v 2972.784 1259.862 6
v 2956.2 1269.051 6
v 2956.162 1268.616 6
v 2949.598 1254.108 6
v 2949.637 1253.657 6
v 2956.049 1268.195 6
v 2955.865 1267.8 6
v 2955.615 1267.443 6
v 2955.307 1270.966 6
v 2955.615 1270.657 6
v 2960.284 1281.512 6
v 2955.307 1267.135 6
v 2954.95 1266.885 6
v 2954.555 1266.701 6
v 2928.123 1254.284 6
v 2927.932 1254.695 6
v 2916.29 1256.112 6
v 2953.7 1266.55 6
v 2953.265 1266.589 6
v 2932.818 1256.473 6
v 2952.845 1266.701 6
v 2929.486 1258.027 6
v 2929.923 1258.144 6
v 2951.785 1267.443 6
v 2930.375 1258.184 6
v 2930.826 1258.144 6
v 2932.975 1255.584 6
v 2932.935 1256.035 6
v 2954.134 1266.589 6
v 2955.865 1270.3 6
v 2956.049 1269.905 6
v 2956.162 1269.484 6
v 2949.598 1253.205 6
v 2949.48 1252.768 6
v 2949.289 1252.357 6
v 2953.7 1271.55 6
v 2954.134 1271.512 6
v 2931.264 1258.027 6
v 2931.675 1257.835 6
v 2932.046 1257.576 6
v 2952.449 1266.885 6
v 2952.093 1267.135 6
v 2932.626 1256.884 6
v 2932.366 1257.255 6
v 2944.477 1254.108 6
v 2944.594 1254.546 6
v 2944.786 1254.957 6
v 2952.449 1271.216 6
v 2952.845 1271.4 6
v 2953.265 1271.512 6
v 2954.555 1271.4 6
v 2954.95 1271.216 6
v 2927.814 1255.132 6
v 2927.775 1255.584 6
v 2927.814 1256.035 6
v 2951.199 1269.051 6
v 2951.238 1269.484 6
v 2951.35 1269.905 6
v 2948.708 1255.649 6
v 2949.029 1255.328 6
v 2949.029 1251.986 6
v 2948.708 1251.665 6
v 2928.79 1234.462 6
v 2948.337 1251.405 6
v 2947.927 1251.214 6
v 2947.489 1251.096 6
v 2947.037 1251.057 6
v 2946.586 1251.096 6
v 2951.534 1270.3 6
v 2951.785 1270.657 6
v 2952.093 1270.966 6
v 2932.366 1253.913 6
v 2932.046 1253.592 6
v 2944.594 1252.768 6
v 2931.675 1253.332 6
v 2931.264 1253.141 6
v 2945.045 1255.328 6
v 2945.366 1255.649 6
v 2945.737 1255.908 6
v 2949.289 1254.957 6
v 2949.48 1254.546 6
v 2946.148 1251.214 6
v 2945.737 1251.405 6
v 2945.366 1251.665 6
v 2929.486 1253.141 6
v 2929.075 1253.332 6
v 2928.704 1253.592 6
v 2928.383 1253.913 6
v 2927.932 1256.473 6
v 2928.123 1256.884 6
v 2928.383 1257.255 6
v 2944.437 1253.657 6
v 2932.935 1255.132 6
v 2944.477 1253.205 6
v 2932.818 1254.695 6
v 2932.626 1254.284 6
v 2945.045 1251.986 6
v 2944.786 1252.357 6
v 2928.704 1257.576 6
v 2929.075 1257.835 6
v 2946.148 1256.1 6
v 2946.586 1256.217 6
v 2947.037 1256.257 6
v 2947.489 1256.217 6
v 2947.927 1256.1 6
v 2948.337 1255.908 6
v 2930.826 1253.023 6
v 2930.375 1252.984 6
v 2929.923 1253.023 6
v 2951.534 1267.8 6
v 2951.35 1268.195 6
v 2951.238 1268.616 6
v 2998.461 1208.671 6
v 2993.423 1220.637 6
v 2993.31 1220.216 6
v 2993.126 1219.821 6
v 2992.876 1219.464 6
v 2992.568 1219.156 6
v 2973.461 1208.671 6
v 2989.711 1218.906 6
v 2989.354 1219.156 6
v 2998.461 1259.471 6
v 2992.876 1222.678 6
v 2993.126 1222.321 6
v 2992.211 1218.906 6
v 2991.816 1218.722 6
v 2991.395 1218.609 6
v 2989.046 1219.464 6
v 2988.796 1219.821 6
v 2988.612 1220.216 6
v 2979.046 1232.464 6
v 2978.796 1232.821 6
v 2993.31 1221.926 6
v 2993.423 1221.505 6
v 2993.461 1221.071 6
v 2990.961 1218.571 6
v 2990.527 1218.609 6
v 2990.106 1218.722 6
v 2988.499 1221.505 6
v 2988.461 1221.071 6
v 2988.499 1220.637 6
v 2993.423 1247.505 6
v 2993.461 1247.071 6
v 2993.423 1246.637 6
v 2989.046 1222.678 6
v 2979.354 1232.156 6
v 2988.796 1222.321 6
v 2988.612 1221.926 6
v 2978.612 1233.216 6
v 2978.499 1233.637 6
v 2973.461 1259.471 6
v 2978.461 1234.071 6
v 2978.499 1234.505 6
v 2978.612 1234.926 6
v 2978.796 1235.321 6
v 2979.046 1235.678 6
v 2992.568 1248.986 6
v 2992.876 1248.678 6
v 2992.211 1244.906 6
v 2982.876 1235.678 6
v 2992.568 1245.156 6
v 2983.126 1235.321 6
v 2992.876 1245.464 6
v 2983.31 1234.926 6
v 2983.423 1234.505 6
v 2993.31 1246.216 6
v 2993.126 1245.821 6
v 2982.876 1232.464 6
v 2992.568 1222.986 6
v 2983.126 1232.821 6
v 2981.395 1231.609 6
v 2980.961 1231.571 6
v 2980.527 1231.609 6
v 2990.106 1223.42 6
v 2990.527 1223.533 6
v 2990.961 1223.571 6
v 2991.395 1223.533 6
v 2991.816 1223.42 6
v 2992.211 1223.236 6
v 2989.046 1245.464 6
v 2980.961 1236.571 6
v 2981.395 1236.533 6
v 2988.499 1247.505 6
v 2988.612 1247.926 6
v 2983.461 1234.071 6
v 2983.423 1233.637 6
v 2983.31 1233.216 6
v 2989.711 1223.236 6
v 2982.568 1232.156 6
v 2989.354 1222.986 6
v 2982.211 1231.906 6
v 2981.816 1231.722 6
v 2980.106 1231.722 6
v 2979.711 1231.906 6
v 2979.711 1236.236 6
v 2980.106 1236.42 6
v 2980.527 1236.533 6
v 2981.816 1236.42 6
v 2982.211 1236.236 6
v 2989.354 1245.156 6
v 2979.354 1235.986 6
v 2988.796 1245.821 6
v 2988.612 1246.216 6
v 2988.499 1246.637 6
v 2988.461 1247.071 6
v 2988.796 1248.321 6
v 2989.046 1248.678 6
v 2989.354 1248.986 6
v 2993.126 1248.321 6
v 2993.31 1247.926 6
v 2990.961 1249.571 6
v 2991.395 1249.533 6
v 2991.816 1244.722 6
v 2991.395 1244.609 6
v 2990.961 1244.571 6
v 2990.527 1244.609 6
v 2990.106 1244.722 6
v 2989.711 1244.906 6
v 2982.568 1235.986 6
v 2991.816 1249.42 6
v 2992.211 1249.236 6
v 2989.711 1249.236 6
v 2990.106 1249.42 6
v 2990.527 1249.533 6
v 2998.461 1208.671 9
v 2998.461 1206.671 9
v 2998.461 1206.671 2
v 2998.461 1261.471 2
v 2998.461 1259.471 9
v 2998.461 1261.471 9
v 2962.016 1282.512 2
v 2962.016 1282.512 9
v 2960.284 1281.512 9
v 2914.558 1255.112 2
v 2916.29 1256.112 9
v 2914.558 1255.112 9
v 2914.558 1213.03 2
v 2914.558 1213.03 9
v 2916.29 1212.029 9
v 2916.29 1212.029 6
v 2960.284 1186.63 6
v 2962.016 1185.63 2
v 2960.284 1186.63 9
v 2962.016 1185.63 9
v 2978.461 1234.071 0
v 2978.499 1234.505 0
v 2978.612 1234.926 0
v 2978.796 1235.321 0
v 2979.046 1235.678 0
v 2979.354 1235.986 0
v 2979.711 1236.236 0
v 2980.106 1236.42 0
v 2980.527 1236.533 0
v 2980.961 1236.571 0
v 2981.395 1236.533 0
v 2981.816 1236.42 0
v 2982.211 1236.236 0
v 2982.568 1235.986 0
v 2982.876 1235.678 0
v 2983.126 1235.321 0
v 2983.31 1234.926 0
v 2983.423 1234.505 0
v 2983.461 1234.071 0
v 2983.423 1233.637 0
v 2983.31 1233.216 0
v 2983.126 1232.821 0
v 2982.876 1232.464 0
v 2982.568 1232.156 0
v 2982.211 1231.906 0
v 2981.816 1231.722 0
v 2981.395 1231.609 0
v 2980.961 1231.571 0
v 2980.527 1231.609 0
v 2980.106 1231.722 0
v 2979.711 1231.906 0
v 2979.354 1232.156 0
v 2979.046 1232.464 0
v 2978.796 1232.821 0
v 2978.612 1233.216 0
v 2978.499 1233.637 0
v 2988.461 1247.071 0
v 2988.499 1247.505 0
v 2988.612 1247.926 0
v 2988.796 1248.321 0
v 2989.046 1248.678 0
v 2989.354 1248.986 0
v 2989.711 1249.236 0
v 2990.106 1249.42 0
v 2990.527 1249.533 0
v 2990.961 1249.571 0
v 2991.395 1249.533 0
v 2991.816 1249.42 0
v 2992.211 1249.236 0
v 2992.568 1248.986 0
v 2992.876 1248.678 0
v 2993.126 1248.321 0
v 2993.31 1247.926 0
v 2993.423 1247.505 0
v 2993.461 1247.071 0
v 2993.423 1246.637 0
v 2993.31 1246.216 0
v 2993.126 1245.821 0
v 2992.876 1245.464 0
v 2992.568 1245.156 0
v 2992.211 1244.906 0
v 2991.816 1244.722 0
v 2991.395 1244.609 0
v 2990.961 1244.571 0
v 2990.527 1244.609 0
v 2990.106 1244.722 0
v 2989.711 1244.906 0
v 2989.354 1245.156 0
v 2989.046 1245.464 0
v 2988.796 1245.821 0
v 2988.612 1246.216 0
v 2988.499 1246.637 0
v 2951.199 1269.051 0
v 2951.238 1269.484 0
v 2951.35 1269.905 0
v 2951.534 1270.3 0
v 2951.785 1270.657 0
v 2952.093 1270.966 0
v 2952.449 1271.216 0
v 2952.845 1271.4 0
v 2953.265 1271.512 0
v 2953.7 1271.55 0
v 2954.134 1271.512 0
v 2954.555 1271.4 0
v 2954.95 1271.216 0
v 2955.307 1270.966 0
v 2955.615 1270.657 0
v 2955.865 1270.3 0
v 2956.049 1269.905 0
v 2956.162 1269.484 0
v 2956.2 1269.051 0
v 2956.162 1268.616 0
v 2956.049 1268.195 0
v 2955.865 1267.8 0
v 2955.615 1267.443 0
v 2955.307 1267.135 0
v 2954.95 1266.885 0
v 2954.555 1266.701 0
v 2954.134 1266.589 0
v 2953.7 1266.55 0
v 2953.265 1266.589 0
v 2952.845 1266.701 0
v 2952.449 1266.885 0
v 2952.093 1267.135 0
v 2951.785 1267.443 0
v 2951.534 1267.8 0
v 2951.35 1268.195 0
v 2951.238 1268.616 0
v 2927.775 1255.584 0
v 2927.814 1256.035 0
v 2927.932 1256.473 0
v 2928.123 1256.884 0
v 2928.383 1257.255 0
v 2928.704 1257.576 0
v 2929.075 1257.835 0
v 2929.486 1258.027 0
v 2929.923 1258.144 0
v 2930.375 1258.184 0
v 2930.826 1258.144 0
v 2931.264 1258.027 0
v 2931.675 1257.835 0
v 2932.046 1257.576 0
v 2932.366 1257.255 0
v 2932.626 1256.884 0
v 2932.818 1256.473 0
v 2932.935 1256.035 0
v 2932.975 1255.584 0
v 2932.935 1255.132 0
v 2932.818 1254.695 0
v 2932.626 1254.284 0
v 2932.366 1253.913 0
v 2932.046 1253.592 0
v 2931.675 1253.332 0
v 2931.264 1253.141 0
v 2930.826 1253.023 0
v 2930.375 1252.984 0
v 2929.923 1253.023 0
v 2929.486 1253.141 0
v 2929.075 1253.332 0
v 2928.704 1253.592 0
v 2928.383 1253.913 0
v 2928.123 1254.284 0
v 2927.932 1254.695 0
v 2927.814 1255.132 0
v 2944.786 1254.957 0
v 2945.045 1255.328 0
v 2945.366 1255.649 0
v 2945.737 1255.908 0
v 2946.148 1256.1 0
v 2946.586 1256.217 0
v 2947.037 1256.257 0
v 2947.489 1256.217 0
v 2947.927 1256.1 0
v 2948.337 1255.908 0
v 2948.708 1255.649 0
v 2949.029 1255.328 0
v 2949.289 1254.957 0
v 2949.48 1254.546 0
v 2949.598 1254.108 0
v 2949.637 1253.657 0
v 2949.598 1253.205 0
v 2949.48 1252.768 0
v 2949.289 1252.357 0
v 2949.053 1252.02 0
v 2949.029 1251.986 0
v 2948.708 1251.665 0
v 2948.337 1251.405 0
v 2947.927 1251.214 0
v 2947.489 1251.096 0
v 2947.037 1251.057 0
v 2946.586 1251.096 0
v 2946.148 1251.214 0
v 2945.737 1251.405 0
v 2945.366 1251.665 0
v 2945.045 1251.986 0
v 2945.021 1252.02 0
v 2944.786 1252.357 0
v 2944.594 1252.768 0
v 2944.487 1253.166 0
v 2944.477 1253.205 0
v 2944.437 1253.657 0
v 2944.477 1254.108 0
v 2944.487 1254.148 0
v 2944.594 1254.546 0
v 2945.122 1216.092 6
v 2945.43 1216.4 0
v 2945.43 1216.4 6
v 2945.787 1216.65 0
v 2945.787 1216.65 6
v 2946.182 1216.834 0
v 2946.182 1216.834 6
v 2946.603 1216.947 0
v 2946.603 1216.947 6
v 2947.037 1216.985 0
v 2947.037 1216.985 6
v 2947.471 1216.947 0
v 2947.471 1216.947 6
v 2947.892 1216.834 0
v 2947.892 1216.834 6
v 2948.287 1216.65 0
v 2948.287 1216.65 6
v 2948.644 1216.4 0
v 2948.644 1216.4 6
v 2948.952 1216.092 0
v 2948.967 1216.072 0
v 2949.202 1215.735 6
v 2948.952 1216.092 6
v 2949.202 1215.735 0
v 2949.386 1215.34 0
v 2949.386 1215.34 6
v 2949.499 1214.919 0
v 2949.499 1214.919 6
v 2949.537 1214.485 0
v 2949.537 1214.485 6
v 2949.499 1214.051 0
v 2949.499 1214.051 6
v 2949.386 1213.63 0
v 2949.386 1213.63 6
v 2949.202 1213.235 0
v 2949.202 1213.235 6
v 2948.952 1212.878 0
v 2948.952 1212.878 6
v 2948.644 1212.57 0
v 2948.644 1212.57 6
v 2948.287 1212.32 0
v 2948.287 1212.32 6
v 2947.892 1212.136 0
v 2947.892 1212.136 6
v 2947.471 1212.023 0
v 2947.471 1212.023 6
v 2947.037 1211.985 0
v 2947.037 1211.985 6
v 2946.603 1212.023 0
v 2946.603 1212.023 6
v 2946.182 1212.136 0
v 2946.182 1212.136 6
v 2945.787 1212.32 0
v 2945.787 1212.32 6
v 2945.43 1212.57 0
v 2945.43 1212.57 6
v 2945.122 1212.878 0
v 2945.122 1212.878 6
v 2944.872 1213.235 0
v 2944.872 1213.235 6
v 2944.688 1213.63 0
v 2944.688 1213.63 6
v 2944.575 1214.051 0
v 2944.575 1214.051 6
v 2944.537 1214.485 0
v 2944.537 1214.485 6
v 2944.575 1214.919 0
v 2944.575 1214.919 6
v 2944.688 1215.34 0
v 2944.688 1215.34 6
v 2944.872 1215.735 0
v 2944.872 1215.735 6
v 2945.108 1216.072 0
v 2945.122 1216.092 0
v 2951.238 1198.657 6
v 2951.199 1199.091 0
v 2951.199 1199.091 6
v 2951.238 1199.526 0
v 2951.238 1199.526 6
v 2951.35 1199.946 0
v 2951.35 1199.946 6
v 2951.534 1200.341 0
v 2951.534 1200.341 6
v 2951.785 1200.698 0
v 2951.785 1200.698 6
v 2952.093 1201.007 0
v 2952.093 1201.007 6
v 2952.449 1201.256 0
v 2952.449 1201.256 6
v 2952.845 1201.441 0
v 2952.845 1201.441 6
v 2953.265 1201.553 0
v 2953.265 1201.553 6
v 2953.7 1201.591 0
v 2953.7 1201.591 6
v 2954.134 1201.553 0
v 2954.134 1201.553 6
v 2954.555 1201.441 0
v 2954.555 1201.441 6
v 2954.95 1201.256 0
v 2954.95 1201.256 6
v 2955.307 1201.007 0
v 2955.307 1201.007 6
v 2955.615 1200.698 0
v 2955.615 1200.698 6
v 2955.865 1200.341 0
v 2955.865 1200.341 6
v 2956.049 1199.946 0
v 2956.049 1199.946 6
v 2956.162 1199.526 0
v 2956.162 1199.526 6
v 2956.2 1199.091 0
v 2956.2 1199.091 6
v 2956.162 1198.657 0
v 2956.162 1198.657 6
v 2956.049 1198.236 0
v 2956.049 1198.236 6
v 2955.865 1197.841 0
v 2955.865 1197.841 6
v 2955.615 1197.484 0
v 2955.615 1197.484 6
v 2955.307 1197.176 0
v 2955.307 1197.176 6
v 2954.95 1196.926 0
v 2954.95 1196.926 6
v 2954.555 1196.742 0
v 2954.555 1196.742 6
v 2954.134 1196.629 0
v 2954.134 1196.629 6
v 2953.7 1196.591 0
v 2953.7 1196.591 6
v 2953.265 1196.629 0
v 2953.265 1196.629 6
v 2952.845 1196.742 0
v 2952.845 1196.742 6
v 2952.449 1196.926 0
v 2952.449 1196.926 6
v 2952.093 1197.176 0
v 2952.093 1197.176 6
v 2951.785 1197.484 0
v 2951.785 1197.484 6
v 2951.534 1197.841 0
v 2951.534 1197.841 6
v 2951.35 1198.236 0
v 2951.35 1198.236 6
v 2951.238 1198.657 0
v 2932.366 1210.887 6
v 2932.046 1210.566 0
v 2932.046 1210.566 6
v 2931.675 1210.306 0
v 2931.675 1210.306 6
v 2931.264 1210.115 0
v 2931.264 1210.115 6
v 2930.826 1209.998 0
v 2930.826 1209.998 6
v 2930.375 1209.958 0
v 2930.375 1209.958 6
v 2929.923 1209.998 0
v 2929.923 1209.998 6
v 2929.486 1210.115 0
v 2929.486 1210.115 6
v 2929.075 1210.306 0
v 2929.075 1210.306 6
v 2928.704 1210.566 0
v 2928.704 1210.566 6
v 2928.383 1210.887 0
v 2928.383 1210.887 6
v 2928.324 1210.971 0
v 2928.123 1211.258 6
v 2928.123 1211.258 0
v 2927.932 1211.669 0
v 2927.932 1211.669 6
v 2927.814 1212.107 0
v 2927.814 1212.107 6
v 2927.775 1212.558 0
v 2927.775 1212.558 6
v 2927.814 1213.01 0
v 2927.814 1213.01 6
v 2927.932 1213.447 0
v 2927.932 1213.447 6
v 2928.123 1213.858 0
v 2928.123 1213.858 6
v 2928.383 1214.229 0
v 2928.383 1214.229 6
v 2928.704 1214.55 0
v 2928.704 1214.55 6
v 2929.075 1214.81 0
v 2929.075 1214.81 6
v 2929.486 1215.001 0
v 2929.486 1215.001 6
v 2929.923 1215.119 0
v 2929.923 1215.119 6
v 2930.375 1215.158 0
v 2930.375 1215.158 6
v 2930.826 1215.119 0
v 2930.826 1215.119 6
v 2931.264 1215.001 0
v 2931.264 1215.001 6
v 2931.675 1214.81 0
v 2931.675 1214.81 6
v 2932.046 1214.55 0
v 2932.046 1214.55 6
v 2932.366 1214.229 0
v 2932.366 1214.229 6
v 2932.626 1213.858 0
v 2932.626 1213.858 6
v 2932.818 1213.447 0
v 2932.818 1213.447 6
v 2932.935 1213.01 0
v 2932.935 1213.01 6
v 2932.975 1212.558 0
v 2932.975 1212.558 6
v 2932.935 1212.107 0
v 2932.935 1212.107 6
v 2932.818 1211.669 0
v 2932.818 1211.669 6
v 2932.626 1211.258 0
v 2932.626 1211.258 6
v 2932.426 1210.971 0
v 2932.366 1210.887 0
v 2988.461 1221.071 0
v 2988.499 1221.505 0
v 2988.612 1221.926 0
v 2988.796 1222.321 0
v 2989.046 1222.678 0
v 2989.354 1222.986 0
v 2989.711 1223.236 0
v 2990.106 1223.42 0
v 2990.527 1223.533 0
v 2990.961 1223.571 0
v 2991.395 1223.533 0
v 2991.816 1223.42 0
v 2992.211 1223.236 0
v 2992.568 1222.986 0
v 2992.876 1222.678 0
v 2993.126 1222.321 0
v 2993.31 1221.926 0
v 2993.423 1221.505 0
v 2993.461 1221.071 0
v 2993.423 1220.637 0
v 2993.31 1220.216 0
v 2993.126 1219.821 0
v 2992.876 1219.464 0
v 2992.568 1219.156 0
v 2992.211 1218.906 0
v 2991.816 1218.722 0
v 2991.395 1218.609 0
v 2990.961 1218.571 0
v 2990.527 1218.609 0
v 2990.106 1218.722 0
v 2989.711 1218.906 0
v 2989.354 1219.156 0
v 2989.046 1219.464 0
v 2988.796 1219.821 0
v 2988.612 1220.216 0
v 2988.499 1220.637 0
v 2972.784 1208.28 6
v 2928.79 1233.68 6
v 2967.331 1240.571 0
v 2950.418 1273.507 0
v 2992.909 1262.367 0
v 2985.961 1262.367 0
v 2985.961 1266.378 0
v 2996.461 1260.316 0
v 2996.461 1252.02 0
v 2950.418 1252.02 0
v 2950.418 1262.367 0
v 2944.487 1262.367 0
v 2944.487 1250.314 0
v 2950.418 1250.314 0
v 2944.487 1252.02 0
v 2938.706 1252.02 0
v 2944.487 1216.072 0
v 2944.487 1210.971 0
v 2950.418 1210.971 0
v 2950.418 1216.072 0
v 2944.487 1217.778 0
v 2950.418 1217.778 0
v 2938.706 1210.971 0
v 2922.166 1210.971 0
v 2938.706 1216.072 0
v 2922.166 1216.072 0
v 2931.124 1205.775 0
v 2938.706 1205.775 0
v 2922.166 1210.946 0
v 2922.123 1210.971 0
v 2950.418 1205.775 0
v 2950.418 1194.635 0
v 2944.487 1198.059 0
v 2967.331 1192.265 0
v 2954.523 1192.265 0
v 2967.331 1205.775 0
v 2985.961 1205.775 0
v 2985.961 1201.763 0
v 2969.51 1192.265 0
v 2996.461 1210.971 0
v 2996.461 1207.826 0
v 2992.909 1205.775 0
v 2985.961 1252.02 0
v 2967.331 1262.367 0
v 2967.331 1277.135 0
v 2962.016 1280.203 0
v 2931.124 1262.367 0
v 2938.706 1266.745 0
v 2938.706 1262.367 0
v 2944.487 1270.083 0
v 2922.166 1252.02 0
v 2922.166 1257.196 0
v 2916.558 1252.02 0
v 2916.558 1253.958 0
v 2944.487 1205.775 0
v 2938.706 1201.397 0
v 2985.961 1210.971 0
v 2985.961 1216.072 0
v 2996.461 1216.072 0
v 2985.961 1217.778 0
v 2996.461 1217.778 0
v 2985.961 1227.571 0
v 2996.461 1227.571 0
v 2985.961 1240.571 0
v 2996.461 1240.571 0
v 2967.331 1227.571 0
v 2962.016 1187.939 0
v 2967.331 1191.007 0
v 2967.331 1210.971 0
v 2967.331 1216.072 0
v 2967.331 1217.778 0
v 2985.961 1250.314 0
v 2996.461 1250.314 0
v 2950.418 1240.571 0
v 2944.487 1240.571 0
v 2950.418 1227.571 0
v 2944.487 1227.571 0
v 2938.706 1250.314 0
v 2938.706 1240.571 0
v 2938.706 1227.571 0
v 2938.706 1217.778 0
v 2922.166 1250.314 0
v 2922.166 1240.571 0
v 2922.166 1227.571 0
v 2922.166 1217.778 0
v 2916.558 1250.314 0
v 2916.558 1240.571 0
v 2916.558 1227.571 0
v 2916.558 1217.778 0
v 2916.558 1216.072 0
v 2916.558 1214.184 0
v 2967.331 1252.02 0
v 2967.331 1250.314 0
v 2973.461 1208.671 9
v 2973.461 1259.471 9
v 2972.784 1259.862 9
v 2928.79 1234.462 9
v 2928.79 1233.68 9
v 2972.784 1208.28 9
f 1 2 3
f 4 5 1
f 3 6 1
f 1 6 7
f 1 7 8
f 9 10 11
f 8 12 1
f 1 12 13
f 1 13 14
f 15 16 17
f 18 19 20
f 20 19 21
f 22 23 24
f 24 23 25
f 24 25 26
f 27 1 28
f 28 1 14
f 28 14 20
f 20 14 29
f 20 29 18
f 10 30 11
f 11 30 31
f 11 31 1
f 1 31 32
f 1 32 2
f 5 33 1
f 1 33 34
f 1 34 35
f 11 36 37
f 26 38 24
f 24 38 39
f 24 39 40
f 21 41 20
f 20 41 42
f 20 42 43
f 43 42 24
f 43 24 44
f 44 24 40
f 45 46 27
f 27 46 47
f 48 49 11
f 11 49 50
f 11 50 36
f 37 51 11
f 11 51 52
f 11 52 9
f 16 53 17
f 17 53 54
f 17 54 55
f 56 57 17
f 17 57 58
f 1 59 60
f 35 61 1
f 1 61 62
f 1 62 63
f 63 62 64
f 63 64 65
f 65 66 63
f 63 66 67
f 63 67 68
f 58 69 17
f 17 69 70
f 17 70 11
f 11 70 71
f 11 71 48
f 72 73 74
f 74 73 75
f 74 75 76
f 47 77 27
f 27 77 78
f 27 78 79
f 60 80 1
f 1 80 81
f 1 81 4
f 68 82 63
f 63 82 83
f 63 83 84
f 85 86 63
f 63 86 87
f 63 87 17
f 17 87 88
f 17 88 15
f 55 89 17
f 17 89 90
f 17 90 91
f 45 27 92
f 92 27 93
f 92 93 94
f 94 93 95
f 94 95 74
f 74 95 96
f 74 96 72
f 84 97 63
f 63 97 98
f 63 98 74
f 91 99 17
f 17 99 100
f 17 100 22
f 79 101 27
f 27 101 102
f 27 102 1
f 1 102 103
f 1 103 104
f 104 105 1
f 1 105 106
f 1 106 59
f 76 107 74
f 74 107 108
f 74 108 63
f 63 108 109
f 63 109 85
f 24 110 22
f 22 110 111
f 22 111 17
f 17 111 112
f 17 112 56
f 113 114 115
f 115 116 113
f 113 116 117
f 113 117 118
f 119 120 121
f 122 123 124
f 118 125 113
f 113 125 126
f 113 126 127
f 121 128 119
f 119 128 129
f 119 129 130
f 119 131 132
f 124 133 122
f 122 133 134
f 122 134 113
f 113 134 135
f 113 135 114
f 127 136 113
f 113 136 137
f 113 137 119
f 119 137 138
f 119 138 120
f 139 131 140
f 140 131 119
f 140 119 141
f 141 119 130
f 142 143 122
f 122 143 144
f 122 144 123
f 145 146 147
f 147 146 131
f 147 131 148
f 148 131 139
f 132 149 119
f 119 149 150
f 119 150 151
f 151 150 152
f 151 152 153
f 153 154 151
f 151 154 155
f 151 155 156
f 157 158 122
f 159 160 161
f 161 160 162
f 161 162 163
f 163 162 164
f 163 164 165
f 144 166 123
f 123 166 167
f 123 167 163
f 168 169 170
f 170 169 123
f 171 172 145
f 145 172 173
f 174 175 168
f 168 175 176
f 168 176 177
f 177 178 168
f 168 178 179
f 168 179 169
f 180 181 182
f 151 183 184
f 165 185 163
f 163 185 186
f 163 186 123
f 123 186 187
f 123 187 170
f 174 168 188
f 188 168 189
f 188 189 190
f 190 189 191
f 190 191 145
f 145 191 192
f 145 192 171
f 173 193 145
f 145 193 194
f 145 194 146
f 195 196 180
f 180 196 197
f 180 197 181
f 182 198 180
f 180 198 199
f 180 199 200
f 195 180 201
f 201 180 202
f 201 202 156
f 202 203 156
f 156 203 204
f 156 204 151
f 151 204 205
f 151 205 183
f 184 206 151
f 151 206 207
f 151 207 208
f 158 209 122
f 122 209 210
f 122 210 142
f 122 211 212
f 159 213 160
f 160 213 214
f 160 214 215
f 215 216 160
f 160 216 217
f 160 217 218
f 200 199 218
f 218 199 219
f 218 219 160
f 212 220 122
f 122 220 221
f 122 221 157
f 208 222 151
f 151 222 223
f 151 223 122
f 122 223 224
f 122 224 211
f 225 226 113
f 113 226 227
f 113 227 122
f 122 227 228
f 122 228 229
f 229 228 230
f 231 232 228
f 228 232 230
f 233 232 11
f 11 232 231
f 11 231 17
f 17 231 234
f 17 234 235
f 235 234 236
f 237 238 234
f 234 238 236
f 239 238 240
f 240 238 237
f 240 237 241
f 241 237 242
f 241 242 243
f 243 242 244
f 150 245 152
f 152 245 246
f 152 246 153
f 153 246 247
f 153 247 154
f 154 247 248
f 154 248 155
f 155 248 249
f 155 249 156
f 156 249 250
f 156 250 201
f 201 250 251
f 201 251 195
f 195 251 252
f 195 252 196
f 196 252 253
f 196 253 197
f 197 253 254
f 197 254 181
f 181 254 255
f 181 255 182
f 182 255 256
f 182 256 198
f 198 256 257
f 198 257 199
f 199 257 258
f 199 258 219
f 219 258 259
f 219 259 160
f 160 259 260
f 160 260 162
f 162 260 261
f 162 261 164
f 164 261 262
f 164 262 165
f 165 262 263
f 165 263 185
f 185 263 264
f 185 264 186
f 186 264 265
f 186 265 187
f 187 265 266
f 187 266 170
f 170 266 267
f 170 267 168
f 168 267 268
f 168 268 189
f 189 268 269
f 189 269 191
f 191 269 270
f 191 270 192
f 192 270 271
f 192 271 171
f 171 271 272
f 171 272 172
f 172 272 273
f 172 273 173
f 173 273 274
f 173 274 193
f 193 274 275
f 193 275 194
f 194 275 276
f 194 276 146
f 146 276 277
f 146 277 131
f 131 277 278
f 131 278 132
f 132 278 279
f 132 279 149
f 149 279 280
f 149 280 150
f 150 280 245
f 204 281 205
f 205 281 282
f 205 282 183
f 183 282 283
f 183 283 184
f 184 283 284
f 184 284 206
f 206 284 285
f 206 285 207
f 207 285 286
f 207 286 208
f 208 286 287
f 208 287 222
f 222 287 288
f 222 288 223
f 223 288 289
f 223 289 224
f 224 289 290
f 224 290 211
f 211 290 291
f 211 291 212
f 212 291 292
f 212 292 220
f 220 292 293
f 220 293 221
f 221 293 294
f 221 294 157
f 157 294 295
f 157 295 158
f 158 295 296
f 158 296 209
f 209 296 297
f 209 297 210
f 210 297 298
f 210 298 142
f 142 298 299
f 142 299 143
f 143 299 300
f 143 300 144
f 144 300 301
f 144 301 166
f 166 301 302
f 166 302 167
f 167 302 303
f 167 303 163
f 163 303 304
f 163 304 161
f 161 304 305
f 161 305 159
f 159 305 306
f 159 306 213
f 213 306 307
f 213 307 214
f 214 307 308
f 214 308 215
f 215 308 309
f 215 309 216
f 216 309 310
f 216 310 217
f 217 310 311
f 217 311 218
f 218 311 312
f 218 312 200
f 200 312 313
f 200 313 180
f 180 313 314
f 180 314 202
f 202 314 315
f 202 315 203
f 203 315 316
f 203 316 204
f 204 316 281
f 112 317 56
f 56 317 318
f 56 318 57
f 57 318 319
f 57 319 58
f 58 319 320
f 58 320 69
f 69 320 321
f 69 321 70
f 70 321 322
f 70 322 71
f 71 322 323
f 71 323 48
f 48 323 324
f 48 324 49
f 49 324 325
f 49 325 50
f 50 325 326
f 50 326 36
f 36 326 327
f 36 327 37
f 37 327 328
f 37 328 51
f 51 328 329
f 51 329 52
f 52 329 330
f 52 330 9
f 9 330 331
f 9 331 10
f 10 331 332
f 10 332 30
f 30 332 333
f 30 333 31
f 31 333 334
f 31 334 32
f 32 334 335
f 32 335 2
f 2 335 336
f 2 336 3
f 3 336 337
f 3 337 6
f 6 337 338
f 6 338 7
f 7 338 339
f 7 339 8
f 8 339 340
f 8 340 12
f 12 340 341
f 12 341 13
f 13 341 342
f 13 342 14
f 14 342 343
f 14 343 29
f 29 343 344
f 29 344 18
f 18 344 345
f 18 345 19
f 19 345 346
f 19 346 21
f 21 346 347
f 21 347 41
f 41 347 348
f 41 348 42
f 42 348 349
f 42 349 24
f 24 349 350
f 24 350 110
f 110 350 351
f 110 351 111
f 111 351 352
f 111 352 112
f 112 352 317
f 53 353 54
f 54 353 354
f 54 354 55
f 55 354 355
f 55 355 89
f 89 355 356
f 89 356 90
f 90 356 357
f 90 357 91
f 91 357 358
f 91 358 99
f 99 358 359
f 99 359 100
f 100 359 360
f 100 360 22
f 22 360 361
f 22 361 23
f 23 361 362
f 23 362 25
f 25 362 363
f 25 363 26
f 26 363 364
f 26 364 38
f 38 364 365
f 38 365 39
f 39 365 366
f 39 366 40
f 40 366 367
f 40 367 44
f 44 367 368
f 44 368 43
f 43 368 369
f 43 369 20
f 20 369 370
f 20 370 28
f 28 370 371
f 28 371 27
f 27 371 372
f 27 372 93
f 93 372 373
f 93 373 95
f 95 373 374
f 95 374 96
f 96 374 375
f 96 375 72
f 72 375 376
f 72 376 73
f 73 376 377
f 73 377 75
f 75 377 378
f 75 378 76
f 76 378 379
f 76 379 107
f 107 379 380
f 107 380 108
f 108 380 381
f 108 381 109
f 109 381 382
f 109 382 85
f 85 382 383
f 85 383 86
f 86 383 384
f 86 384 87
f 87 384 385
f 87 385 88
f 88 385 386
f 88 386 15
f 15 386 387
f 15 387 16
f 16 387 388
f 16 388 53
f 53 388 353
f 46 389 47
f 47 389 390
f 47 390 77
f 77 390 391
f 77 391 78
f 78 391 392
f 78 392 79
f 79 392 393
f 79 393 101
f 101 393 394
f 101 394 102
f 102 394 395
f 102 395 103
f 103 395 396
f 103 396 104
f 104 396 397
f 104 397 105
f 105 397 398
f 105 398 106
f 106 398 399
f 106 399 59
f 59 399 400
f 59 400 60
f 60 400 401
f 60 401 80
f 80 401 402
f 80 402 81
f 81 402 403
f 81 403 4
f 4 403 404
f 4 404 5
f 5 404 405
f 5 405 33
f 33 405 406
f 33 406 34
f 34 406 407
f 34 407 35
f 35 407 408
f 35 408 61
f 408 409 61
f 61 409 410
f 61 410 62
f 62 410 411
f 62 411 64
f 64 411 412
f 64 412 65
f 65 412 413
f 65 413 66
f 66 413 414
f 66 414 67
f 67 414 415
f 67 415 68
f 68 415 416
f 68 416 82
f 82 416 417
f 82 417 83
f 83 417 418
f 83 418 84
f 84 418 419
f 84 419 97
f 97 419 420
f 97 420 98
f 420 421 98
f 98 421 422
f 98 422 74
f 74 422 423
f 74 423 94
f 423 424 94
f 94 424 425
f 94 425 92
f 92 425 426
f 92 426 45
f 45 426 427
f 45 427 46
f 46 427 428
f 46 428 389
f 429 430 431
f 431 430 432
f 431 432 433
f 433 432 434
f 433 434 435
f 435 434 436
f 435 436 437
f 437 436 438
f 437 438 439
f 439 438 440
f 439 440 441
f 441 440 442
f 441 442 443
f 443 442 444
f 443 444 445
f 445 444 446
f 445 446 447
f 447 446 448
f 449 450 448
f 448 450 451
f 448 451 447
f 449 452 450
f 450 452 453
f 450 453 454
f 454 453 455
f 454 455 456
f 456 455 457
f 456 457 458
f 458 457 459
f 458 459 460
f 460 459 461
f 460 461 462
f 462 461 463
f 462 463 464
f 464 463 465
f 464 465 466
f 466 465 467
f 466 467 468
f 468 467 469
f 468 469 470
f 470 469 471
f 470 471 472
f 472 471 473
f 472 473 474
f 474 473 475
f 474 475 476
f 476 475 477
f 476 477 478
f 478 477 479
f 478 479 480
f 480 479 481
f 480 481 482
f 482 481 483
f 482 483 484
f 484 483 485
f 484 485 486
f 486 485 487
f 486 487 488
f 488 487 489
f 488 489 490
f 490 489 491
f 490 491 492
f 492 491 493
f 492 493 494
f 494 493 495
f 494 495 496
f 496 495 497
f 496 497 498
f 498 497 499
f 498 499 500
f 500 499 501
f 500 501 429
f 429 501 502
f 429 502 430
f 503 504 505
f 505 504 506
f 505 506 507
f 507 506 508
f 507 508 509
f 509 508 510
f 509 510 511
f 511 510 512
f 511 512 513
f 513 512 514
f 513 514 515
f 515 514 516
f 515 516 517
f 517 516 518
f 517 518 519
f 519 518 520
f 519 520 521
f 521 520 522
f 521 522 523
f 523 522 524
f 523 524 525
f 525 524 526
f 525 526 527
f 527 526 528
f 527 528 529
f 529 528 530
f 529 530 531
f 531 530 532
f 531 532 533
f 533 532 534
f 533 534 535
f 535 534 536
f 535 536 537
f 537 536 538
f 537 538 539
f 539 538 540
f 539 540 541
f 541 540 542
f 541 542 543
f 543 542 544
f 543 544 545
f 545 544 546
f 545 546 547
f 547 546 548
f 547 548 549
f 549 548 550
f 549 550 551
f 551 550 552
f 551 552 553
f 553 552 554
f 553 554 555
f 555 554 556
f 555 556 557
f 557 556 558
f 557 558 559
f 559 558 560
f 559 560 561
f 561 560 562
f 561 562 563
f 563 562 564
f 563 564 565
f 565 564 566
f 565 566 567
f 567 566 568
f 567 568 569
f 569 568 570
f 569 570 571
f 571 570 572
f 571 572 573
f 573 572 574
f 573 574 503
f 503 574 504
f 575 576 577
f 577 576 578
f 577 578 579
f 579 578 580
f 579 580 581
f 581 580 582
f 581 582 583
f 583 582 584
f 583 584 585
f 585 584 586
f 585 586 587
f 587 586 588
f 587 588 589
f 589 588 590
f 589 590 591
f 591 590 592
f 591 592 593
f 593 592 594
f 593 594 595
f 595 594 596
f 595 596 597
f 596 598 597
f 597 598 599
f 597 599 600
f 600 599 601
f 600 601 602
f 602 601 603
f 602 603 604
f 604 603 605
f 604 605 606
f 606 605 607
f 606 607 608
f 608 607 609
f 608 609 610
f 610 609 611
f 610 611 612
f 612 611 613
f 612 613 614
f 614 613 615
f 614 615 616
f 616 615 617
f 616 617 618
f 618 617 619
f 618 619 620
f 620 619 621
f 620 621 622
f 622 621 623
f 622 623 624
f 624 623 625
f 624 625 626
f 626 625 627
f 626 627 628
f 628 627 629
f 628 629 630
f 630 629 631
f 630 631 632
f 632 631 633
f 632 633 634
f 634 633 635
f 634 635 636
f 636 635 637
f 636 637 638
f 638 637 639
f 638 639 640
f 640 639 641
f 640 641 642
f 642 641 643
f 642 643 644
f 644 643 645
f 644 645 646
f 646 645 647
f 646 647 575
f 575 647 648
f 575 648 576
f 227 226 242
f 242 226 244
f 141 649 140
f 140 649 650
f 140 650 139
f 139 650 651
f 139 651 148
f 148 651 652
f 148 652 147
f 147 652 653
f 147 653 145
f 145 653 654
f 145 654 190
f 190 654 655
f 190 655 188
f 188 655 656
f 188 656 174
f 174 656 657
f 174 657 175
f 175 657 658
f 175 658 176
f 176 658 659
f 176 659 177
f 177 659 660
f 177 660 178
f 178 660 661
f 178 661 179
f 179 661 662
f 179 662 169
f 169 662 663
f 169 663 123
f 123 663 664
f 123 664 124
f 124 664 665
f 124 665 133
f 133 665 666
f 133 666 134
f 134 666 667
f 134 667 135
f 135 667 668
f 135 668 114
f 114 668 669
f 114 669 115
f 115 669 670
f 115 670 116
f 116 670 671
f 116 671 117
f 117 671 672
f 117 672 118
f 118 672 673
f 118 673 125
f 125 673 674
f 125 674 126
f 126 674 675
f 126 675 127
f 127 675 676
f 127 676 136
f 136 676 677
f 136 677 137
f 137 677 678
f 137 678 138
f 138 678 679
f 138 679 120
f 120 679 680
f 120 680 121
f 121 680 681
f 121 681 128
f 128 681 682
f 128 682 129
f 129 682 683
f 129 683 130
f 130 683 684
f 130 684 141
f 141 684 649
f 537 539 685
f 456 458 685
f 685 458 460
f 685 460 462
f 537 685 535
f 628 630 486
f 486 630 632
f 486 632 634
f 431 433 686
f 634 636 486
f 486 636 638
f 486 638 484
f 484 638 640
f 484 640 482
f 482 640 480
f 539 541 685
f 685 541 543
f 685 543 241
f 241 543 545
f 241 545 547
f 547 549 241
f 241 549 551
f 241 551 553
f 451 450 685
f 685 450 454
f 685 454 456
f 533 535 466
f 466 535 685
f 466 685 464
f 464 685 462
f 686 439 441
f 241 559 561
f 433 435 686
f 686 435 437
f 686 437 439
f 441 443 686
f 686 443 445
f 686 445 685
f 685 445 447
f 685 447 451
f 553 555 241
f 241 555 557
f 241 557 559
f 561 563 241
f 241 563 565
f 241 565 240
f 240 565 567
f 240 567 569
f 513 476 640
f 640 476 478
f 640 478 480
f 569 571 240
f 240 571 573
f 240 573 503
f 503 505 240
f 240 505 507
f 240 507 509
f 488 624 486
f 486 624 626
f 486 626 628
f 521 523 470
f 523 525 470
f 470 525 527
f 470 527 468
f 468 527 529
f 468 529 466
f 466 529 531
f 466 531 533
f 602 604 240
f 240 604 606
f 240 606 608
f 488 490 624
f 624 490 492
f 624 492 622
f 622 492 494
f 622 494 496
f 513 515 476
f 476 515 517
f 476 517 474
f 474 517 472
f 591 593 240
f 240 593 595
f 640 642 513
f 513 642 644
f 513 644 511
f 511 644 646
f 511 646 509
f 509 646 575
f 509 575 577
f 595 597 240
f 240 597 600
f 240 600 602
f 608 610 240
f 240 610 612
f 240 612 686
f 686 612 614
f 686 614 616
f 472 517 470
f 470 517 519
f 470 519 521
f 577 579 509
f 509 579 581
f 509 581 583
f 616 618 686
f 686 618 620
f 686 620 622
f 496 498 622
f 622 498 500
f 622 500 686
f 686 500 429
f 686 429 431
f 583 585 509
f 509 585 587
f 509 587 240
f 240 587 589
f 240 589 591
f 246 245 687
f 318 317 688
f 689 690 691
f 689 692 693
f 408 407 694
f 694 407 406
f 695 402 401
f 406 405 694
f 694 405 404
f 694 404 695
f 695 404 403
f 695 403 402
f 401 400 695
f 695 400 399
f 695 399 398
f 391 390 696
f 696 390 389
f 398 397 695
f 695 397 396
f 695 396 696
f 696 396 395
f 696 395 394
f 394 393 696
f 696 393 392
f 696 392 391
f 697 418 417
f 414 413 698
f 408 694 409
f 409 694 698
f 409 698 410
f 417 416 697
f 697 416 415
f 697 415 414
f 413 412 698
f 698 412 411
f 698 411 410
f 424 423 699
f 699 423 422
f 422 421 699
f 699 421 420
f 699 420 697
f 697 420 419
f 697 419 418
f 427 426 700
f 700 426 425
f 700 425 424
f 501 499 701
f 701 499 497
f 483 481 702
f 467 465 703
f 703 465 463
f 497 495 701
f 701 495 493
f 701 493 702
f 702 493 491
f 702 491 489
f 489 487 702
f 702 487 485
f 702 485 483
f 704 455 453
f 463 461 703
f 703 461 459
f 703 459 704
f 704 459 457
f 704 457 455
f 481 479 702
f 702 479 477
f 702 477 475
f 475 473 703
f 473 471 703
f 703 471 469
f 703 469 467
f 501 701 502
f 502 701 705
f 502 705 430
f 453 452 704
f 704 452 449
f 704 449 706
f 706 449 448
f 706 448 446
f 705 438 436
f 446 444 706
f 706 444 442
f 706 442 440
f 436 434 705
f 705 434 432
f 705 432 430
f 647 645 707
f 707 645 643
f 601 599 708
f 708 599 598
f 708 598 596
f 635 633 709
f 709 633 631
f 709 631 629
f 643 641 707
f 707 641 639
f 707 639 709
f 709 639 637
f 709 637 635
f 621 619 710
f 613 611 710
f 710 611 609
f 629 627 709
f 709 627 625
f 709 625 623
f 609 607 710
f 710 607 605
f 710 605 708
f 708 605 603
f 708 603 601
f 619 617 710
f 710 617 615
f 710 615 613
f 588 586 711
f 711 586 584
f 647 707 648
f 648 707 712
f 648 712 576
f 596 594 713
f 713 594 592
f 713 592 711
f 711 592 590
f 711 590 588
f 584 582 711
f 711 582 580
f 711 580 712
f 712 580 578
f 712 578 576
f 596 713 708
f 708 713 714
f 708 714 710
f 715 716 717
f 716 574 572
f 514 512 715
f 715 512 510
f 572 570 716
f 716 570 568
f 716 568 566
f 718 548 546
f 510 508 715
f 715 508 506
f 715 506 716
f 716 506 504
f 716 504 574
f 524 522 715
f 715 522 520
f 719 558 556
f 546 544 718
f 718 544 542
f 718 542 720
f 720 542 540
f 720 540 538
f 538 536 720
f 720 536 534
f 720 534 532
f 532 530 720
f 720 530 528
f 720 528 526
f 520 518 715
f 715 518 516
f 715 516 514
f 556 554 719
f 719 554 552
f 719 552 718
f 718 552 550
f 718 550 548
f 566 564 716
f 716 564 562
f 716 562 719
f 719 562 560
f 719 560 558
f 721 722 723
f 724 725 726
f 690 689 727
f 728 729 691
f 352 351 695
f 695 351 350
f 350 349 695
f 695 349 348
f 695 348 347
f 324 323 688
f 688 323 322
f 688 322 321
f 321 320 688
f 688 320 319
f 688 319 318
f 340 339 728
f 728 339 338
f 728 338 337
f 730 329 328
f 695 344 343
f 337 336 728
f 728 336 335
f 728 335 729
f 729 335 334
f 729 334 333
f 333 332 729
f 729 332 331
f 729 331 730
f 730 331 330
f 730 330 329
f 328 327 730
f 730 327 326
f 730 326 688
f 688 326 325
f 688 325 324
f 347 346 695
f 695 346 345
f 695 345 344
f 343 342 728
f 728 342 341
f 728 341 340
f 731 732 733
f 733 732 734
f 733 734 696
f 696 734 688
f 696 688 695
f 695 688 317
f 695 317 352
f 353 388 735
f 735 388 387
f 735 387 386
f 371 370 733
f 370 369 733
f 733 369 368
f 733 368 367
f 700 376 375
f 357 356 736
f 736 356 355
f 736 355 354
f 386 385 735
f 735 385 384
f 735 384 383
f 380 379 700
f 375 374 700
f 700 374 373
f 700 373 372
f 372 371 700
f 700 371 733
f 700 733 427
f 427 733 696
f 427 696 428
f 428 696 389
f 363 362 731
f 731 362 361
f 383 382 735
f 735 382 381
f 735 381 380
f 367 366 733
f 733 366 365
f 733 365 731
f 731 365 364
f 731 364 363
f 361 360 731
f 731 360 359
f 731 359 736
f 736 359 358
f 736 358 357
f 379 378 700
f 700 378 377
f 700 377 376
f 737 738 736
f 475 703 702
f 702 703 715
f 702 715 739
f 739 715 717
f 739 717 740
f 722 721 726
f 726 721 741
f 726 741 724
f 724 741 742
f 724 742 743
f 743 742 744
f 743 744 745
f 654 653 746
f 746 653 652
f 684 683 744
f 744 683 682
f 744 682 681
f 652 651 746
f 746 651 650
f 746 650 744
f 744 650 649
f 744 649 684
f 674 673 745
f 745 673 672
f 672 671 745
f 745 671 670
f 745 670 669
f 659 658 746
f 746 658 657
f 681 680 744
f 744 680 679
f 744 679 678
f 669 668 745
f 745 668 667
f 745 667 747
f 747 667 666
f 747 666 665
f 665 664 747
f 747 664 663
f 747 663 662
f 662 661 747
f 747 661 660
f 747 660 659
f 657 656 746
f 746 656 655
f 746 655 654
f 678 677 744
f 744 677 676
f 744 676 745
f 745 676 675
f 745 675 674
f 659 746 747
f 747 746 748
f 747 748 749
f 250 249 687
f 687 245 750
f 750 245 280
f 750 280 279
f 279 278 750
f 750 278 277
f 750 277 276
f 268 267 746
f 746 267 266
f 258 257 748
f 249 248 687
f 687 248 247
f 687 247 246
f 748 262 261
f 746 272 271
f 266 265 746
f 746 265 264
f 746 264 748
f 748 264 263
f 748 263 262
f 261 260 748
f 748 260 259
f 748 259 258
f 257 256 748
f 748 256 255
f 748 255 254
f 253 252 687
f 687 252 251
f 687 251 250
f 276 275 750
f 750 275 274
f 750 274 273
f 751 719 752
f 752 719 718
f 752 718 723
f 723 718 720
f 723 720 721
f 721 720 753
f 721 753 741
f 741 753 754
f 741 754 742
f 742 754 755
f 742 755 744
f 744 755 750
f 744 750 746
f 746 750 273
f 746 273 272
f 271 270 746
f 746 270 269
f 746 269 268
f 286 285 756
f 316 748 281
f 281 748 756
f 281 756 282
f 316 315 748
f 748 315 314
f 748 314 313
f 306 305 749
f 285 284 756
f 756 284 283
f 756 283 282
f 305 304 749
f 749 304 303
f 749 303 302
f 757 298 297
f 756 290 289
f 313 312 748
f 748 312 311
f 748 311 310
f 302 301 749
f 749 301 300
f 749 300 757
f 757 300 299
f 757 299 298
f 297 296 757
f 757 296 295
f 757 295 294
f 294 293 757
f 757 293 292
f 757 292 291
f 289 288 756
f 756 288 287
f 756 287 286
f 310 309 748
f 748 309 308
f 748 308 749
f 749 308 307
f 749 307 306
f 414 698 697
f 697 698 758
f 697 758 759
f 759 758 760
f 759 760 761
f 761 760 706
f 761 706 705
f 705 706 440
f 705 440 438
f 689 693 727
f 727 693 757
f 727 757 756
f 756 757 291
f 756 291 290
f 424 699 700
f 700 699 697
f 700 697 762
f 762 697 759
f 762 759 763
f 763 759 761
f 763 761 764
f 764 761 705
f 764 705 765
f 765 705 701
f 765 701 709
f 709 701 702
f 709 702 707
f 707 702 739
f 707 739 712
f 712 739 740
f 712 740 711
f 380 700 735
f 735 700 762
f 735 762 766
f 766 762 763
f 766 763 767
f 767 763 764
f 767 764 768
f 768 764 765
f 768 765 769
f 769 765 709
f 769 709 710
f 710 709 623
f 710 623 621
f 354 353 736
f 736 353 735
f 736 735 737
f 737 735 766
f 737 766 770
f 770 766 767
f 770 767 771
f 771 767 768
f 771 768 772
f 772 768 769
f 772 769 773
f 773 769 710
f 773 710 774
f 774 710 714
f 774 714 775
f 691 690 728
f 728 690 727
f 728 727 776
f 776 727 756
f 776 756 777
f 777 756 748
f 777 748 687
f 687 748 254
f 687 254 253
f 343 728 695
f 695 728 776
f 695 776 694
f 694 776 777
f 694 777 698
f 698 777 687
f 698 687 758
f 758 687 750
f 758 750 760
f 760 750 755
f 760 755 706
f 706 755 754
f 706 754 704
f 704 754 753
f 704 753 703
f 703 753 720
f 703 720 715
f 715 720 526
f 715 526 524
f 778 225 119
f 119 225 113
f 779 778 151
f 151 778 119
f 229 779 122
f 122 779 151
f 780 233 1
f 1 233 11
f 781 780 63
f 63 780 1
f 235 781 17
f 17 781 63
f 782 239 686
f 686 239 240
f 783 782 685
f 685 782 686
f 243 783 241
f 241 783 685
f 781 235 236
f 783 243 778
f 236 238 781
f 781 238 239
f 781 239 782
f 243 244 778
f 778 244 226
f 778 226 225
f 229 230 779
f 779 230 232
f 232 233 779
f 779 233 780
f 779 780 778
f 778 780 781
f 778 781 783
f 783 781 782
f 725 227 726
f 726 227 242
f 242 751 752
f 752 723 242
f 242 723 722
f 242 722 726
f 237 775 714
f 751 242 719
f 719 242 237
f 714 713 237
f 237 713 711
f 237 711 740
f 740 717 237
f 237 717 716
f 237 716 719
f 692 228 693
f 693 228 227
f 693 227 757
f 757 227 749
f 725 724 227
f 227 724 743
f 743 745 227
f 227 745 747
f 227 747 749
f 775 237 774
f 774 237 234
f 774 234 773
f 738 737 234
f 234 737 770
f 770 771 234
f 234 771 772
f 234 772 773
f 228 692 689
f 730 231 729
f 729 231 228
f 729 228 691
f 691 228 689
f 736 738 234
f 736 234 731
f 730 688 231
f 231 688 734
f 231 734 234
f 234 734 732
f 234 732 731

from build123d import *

# Parameters (mm, degrees)
SKETCH1_R           = 2.5
SKETCH1_R_2         = 2.6
BOSS_EXTRUDE1_DEPTH = 6
BOSS_EXTRUDE2_DEPTH = 3
CHAMFER1_SIZE       = 2


with BuildPart() as part:
    # Sketch1 → Boss-Extrude1 (new body)
    with BuildSketch(Plane.XY):
        Polygon((2998.461039771, 1261.470901479), (2998.461039771, 1206.670901479), (2962.016271034, 1185.629504438), (2914.558078907, 1213.029504438), (2914.558078907, 1255.11229852), (2962.016271034, 1282.51229852), align=None)
        with Locations((2990.961039771, 1221.070901479)):
            Circle(SKETCH1_R, mode=Mode.SUBTRACT)
        with Locations((2980.961039771, 1234.070901479)):
            Circle(SKETCH1_R, mode=Mode.SUBTRACT)
        with Locations((2990.961039771, 1247.070901479)):
            Circle(SKETCH1_R, mode=Mode.SUBTRACT)
        with Locations((2953.699650408, 1269.050441325)):
            Circle(SKETCH1_R, mode=Mode.SUBTRACT)
        with Locations((2930.374699533, 1255.583774658)):
            Circle(SKETCH1_R_2, mode=Mode.SUBTRACT)
        with Locations((2947.03717497, 1214.484949004)):
            Circle(SKETCH1_R, mode=Mode.SUBTRACT)
        with Locations((2953.699650408, 1199.091361633)):
            Circle(SKETCH1_R, mode=Mode.SUBTRACT)
        with Locations((2930.374699533, 1212.5580283)):
            Circle(SKETCH1_R_2, mode=Mode.SUBTRACT)
        with Locations((2947.03717497, 1253.656853954)):
            Circle(SKETCH1_R_2, mode=Mode.SUBTRACT)
    extrude(amount=BOSS_EXTRUDE1_DEPTH)

    # Sketch2 → Boss-Extrude2 (add)
    with BuildSketch(Plane.XY.offset(6)):
        Polygon((2916.290129714, 1212.029504438), (2928.790129714, 1233.680139532), (2972.784220226, 1208.280139532), (2960.284220226, 1186.629504438), (2962.016271034, 1185.629504438), (2998.461039771, 1206.670901479), (2998.461039771, 1208.670901479), (2973.461039771, 1208.670901479), (2973.461039771, 1259.470901479), (2998.461039771, 1259.470901479), (2998.461039771, 1261.470901479), (2962.016271034, 1282.51229852), (2960.284220226, 1281.51229852), (2972.784220226, 1259.861663425), (2928.790129714, 1234.461663425), (2916.290129714, 1256.11229852), (2914.558078907, 1255.11229852), (2914.558078907, 1213.029504438), align=None)
    extrude(amount=BOSS_EXTRUDE2_DEPTH)

    # Chamfer1
    chamfer1_edges = [part.edges().sort_by_distance(p)[0] for p in [
        (2980.238655403, 1196.150202958, 0),
        (2938.28717497, 1199.329504438, 0),
        (2914.558078907, 1234.070901479, 0),
        (2938.28717497, 1268.81229852, 0),
        (2980.238655403, 1271.991599999, 0),
        (2998.461039771, 1234.070901479, 0),
    ]]
    chamfer(chamfer1_edges, length=CHAMFER1_SIZE)


solid = part.part
